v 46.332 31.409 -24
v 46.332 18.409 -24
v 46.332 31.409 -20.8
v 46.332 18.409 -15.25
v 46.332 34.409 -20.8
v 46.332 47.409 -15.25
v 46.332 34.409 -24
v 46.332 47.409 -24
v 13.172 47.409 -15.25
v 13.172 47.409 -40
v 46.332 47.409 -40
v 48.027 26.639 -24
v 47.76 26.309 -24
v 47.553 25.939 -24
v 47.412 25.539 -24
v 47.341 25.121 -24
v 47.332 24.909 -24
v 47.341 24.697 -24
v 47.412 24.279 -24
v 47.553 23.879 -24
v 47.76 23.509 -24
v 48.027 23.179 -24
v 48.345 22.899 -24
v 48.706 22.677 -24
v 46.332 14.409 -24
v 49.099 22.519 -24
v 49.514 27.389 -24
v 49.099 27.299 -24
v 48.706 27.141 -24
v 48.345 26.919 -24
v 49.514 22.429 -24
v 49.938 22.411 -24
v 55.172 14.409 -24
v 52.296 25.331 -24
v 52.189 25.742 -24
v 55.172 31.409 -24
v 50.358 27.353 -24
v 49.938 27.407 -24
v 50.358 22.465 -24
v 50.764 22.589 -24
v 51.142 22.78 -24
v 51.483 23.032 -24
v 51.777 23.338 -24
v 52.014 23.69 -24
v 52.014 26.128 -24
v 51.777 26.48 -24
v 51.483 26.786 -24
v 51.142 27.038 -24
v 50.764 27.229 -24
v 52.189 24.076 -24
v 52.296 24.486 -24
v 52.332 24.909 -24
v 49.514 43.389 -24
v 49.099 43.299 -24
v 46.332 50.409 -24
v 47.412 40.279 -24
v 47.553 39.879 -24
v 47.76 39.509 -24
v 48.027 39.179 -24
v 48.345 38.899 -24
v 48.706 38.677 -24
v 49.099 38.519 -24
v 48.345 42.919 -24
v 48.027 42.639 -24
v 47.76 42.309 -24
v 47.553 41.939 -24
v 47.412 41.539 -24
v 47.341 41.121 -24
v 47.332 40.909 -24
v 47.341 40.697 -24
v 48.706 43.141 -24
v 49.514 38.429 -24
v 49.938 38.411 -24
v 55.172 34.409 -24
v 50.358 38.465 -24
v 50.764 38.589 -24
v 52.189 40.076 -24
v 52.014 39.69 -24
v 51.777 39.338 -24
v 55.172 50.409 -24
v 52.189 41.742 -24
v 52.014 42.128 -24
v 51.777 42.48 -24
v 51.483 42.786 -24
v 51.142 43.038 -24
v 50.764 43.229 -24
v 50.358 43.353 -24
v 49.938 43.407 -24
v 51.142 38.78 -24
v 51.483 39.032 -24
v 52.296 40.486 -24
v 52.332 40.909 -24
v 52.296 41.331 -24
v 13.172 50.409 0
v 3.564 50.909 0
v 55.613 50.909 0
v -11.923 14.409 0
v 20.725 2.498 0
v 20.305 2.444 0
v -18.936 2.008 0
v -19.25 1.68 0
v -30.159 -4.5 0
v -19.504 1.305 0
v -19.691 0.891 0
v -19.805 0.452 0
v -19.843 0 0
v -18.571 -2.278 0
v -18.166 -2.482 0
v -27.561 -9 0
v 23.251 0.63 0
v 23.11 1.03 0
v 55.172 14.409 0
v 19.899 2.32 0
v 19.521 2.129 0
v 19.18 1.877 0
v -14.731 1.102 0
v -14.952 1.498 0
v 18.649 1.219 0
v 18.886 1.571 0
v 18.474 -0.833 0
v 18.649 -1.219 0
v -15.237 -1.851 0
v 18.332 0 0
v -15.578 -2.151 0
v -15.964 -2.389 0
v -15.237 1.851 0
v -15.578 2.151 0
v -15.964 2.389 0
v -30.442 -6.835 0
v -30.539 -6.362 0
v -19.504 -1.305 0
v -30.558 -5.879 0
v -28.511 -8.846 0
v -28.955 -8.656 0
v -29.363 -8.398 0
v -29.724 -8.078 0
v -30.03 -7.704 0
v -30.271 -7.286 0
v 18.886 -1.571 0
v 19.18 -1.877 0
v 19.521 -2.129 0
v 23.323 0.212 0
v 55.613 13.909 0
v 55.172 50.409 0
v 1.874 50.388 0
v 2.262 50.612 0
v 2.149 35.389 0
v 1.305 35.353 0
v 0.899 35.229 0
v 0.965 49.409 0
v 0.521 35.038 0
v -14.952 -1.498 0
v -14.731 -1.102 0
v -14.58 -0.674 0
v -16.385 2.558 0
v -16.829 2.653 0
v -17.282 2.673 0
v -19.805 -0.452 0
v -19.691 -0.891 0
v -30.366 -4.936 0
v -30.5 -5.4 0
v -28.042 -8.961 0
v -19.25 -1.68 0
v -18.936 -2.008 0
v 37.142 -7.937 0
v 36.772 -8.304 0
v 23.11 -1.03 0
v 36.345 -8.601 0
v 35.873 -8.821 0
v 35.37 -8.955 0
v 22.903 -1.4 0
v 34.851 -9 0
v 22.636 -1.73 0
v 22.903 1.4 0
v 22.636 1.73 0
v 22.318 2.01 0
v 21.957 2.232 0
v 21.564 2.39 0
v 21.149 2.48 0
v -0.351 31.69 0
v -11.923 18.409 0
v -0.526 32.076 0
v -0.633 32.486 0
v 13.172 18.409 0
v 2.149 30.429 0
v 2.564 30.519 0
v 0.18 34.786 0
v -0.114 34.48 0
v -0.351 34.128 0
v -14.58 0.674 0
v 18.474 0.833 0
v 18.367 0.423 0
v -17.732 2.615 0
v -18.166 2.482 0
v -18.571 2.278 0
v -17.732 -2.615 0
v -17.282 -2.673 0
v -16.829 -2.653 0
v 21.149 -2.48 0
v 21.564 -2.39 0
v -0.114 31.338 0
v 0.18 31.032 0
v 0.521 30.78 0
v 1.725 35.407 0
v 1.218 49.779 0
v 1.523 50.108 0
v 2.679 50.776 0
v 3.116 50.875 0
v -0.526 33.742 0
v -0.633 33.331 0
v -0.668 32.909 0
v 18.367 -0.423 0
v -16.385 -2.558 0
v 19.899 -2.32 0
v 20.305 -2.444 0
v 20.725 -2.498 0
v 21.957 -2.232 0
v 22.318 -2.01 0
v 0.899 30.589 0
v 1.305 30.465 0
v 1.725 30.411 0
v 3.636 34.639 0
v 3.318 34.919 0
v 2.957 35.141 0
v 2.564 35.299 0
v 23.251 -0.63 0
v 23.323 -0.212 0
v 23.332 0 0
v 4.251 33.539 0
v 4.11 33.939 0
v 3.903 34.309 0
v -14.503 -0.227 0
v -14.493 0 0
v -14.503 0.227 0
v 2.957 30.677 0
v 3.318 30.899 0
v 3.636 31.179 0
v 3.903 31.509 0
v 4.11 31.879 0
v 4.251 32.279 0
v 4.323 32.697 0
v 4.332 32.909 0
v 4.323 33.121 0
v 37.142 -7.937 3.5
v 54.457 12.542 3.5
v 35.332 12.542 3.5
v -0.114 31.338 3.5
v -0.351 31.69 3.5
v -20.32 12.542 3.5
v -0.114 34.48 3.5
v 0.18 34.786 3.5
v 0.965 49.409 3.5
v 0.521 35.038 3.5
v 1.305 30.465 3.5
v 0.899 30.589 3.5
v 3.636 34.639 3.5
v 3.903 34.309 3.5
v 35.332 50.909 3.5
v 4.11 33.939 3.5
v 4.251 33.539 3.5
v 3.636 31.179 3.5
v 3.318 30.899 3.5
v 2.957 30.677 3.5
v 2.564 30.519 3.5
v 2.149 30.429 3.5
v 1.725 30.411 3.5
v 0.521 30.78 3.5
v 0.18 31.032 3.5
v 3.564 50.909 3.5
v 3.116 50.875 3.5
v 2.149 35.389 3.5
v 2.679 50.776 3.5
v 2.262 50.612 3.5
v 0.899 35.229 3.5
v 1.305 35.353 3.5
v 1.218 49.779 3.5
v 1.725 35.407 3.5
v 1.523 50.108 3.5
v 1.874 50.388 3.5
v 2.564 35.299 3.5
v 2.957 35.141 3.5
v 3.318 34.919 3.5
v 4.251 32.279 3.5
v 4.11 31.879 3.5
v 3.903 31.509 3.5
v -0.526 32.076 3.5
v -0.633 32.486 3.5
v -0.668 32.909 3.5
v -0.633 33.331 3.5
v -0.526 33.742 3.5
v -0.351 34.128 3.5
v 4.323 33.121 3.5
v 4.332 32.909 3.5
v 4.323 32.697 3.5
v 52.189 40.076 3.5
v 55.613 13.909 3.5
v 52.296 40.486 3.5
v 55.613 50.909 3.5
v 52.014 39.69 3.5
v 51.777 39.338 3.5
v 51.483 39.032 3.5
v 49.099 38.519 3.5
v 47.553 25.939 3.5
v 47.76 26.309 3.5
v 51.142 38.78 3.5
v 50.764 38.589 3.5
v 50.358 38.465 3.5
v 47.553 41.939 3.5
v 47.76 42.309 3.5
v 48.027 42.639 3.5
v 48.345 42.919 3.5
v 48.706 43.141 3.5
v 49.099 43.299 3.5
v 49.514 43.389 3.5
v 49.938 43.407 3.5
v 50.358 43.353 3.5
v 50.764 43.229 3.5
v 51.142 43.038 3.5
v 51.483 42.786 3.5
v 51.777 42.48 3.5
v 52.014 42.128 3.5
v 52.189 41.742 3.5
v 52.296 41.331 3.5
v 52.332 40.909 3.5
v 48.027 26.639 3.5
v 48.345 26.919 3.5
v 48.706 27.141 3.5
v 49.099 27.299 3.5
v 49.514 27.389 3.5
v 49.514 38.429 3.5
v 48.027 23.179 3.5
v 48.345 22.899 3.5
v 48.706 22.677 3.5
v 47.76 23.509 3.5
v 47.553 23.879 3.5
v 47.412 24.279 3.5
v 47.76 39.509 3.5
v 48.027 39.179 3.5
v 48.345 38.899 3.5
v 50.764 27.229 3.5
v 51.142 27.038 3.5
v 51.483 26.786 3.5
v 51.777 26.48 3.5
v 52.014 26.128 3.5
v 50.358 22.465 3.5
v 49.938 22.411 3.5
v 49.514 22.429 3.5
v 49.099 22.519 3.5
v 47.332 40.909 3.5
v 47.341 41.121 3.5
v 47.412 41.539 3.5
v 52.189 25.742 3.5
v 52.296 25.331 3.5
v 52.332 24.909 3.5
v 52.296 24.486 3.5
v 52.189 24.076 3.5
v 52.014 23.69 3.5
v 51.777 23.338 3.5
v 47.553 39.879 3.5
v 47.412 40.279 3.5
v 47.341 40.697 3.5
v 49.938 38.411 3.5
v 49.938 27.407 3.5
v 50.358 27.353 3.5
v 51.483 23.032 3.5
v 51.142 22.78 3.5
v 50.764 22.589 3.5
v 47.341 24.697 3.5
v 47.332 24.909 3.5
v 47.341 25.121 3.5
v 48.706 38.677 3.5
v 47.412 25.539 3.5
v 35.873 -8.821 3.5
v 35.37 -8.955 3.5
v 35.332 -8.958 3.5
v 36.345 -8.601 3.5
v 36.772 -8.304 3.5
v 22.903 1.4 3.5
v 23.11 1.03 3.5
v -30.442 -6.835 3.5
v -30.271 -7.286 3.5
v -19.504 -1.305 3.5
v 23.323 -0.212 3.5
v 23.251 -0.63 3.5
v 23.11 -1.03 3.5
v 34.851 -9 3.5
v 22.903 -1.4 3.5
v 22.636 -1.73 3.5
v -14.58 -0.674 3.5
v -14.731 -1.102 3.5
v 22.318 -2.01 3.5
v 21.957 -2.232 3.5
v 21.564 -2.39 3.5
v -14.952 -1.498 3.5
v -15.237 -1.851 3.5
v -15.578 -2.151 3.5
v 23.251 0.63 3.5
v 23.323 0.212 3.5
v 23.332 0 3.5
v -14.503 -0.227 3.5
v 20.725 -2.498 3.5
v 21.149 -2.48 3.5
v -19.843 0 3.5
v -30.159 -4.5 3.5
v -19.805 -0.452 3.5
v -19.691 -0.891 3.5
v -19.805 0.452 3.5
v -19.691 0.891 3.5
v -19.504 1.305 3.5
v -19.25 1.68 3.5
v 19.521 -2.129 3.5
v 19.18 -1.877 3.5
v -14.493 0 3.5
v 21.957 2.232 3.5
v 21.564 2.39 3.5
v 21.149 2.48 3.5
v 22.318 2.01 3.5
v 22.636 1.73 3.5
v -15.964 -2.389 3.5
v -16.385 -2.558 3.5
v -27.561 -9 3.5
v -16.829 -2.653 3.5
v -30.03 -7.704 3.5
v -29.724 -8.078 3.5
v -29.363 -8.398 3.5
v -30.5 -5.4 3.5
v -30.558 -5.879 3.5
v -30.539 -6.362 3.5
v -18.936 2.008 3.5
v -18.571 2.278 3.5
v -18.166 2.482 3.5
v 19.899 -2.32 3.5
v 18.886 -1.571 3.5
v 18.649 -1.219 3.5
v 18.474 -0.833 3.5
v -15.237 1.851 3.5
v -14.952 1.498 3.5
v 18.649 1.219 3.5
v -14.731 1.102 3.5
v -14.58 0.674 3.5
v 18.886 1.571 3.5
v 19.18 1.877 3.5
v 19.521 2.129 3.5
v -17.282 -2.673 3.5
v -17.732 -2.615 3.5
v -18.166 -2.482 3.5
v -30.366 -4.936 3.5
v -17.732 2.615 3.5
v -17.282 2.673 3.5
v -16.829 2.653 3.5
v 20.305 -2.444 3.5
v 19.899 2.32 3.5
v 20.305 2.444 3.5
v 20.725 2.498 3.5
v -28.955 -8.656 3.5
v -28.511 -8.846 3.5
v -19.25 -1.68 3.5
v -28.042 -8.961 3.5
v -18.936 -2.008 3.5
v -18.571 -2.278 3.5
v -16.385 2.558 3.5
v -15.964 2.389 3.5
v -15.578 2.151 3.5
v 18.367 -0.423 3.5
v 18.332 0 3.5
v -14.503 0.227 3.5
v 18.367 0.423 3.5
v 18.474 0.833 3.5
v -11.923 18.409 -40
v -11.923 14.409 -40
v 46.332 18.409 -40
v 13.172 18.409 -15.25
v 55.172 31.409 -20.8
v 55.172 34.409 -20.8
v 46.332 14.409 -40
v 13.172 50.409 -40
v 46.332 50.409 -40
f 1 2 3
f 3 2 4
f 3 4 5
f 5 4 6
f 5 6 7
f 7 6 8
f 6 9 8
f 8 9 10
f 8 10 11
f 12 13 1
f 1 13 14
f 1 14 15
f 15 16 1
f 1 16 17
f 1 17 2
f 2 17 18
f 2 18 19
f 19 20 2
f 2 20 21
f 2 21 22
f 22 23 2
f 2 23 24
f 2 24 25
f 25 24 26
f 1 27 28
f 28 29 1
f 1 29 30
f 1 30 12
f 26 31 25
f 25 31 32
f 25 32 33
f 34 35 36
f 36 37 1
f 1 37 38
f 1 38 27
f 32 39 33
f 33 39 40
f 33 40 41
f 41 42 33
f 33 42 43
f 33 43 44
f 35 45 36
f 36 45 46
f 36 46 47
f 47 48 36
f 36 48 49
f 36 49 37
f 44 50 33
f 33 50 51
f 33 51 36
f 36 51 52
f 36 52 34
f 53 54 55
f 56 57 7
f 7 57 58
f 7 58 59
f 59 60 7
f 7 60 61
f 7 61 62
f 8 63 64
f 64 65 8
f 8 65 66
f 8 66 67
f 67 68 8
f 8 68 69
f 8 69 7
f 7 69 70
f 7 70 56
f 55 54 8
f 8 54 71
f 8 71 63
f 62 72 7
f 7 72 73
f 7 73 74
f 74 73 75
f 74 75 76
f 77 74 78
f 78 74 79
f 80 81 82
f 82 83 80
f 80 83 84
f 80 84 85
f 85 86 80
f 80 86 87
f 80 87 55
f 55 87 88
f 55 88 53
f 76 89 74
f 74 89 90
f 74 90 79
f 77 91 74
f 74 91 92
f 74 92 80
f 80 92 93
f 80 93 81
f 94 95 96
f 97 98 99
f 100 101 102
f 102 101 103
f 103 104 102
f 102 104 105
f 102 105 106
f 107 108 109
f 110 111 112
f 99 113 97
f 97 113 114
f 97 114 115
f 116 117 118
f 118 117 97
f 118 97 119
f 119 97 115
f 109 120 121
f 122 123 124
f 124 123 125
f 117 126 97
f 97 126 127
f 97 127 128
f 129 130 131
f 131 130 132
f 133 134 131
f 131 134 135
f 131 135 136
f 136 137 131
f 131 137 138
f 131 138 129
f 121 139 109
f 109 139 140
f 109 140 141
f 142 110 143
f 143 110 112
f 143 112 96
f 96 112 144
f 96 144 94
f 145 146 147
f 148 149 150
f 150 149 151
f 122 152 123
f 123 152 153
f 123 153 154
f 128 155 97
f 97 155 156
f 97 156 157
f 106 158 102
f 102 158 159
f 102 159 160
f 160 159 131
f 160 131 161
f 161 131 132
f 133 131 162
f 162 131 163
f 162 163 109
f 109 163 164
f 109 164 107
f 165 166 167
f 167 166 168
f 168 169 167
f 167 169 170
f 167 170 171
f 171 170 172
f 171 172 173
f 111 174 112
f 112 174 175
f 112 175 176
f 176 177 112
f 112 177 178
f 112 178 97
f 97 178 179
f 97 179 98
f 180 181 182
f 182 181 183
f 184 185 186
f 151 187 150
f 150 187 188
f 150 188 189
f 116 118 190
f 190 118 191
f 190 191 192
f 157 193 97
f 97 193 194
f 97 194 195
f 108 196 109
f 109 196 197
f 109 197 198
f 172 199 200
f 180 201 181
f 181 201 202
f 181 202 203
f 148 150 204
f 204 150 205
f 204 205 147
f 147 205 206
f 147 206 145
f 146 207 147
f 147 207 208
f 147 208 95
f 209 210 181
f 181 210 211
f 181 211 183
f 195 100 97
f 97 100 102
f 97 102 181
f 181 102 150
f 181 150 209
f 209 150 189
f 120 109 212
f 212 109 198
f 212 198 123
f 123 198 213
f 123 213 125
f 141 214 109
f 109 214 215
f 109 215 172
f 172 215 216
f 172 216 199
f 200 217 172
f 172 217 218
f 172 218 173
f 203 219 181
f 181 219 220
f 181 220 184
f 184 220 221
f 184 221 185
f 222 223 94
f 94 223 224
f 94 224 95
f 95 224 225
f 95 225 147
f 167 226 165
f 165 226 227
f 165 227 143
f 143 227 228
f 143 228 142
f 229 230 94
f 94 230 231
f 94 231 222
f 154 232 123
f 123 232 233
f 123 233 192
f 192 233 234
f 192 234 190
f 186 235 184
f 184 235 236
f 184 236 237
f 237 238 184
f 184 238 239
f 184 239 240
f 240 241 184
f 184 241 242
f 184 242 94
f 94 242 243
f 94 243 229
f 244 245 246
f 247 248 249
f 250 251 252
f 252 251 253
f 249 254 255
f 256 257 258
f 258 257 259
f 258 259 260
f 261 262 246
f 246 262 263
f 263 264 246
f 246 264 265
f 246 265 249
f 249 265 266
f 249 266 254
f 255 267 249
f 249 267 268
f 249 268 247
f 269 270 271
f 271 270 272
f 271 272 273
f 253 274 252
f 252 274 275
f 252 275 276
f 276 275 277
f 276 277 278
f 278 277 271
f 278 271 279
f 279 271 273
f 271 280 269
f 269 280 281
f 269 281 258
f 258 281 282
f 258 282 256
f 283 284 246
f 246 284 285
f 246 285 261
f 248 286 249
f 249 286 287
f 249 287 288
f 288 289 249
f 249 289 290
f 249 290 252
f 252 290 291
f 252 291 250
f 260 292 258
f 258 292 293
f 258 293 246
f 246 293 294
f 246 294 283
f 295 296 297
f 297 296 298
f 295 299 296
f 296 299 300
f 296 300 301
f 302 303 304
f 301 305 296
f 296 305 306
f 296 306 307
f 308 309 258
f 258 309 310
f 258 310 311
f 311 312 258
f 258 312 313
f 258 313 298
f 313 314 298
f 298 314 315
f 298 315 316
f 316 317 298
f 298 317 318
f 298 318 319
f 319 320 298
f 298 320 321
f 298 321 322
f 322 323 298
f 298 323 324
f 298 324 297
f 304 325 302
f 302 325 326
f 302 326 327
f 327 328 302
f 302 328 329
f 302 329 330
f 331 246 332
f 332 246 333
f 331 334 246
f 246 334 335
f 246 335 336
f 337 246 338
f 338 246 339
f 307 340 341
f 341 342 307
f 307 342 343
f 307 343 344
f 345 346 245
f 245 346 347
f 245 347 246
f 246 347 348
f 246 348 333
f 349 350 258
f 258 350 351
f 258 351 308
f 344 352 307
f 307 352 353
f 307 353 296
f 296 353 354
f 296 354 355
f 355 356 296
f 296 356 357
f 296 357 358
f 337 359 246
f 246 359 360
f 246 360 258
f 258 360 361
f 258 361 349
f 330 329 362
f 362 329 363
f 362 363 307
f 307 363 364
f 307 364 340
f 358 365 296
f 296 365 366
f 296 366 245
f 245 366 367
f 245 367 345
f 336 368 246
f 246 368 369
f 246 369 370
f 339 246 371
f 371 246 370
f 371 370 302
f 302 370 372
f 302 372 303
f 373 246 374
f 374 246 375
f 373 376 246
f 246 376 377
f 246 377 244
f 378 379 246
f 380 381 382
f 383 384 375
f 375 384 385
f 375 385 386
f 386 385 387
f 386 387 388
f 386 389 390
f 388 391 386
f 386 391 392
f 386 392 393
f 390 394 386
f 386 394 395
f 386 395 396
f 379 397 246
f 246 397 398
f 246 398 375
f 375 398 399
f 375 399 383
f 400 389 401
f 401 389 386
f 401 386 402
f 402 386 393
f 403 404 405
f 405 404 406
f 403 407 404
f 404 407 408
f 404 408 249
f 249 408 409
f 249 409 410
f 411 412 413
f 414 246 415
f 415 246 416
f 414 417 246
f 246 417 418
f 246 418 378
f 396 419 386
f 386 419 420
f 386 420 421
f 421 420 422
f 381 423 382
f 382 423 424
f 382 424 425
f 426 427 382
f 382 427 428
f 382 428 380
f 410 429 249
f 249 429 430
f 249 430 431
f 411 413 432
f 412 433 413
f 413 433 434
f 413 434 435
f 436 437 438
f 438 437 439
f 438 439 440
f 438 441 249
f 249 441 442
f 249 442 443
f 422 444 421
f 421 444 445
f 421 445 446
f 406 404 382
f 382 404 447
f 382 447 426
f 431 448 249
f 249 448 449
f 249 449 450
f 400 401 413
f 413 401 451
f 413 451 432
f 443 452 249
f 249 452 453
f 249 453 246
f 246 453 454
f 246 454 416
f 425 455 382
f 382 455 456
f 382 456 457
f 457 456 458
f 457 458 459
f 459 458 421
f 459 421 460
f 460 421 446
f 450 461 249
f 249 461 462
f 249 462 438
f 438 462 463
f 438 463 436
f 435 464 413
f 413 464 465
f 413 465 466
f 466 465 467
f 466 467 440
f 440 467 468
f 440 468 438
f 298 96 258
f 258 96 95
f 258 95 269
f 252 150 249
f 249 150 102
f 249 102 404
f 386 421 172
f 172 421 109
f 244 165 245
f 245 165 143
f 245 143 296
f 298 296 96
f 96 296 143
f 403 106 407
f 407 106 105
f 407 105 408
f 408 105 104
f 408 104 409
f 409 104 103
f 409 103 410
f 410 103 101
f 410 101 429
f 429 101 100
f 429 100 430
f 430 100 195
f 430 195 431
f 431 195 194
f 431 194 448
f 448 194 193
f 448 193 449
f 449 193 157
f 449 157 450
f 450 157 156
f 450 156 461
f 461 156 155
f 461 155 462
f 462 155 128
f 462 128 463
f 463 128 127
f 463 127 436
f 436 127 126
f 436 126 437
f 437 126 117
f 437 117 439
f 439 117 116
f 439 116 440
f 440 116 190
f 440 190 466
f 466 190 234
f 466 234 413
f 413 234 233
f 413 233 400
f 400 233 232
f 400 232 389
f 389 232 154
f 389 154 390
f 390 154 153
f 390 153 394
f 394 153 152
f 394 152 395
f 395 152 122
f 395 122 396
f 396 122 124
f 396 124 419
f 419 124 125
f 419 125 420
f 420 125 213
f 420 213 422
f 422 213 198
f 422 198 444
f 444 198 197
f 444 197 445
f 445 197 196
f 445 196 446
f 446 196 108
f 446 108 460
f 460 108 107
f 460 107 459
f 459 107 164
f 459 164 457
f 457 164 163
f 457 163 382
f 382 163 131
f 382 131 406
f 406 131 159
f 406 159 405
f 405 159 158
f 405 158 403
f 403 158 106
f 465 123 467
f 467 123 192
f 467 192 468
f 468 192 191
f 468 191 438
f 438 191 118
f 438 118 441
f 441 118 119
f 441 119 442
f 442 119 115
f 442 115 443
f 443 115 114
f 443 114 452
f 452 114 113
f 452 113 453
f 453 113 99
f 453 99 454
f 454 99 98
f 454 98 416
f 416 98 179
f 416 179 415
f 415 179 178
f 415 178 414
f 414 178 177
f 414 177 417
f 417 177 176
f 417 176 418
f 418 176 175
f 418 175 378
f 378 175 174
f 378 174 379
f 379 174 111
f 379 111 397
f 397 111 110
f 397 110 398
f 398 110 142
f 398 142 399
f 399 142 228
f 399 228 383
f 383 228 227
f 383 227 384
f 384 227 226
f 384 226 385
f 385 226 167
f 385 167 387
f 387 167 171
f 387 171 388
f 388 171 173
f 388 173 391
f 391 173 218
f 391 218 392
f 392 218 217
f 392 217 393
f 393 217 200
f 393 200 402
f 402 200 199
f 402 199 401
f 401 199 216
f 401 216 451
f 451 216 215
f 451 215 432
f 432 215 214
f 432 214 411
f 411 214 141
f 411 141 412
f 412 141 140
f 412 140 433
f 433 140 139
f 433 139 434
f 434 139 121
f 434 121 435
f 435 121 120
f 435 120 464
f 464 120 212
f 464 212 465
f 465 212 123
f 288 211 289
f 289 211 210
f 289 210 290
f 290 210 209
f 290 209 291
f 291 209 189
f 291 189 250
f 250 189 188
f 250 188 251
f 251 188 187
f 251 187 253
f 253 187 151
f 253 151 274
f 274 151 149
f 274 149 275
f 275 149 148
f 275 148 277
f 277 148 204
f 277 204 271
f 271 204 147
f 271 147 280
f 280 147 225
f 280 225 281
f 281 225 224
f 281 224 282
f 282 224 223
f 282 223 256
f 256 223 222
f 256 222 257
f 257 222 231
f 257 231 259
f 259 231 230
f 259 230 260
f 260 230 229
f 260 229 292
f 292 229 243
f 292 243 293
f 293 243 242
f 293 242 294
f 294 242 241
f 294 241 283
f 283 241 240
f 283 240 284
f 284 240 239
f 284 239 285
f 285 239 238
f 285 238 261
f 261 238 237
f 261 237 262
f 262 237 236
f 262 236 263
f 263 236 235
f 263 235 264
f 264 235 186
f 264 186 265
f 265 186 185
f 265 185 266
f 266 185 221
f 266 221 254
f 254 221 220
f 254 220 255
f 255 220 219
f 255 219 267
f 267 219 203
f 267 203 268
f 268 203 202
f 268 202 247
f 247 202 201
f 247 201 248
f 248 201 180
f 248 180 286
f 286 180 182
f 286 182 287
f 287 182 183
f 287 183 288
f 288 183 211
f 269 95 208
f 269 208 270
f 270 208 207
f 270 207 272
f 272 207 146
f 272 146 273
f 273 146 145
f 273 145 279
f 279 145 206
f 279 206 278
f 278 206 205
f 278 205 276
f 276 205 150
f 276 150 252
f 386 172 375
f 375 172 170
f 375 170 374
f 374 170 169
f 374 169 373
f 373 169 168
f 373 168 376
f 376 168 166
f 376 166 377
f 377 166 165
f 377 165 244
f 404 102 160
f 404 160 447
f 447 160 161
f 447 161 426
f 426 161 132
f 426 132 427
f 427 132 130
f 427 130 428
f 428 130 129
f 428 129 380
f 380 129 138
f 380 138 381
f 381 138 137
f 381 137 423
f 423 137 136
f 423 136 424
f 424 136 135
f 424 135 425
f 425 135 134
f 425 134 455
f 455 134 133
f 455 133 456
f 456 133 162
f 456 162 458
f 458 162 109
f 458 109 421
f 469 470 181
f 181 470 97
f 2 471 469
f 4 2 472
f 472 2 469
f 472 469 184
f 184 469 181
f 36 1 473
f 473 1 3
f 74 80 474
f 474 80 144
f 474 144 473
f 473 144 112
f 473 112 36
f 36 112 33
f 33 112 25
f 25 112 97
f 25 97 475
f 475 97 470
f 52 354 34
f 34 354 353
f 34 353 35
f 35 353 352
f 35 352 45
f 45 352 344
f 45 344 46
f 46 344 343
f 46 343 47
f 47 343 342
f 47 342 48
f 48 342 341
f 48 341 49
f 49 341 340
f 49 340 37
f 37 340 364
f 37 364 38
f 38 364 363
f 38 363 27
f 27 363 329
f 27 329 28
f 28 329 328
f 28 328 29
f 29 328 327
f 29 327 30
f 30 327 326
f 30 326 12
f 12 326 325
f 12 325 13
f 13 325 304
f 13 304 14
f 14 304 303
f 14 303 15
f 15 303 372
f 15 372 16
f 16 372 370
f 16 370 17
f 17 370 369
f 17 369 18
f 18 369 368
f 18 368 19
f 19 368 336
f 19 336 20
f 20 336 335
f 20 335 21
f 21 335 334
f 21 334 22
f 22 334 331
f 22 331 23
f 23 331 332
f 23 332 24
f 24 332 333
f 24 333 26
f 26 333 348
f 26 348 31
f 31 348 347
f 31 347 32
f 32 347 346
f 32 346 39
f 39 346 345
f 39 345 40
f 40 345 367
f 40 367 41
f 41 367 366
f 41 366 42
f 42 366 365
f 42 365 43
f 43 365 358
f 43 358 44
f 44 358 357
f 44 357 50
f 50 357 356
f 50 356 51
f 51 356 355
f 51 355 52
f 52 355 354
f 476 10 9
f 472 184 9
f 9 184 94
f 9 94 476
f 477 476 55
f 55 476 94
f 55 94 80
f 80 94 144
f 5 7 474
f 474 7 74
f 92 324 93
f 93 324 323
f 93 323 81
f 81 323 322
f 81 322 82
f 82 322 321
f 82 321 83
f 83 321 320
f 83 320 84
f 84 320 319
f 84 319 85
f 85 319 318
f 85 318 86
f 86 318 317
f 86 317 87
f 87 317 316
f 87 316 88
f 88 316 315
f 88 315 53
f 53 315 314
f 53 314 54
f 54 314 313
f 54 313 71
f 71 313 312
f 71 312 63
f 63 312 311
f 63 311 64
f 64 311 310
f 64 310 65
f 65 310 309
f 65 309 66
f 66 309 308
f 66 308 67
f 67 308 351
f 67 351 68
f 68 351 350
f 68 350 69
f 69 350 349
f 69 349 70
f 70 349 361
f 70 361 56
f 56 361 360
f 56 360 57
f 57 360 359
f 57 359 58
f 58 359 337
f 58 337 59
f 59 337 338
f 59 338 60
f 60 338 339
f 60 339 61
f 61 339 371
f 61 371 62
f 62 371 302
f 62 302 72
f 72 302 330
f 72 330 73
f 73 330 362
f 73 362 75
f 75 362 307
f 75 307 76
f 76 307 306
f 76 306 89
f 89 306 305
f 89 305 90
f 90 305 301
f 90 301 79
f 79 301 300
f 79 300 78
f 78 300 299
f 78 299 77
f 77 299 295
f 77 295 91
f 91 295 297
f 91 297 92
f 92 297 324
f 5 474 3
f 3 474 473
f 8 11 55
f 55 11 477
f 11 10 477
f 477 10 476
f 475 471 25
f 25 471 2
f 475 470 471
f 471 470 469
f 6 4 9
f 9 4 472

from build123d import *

# Parameters (mm, degrees)
SKETCH1_R           = 2.675
SKETCH1_R_2         = 2.5
BOSS_EXTRUDE1_DEPTH = 3.5
FILLET1_R           = 3
SKETCH2_W           = 8.840351234
SKETCH2_H           = 3
SKETCH2_H_2         = 13
SKETCH2_R           = 2.5
SKETCH2_W_2         = 33.159648766
SKETCH2_R_2         = 4.125
SKETCH2_W_3         = 8.159648766
SKETCH2_H_3         = 4
BOSS_EXTRUDE2_DEPTH = 3.5
SKETCH2_4_W         = 8.840351234
SKETCH2_4_H         = 4
SKETCH2_4_H_2       = 13
SKETCH2_4_R         = 2.5
SKETCH2_4_H_3       = 3
SKETCH2_4_W_2       = 33.159648766
BOSS_EXTRUDE3_DEPTH = 24
FILLET2_R           = 3
SKETCH2_7_W         = 8.840351234
SKETCH2_7_H         = 3
BOSS_EXTRUDE5_DEPTH = 20.8
SKETCH2_9_R         = 2.5
CUT_EXTRUDE3_DEPTH  = 80.12322562
CUT_EXTRUDE1_DEPTH  = 80.12322562
SKETCH2_10_W        = 33.159648766
SKETCH2_10_H        = 3
SKETCH2_10_W_2      = 58.254565561
SKETCH2_10_H_2      = 4
BOSS_EXTRUDE6_DEPTH = 40
BOSS_EXTRUDE7_DEPTH = 15.25


with BuildPart() as part:
    # Sketch1 → Boss-Extrude1 (new body)
    with BuildSketch(Plane.XY):
        Polygon((-32.756938656, -9), (36.243061344, -9), (55.612607206, 13.908965344), (55.612607206, 50.908965344), (1.831518612, 50.908965344), align=None)
        with Locations((-17.168481388, 0)):
            Circle(SKETCH1_R, mode=Mode.SUBTRACT)
        with Locations((20.831518612, 0)):
            Circle(SKETCH1_R_2, mode=Mode.SUBTRACT)
        with Locations((1.831518612, 32.908965344)):
            Circle(SKETCH1_R_2, mode=Mode.SUBTRACT)
    extrude(amount=BOSS_EXTRUDE1_DEPTH)

    # Fillet1
    fillet1_edges = [part.edges().sort_by_distance(p)[0] for p in [
        (36.243061344, -9, 1.75),
        (-32.756938656, -9, 1.75),
        (1.831518612, 50.908965344, 1.75),
    ]]
    fillet(fillet1_edges, radius=FILLET1_R)

    # Sketch2 → Boss-Extrude2 (add)
    # profile 1 of 12: a face of its own
    with BuildSketch(Plane(origin=(0, 0, 0), x_dir=(-1, 0, 0), z_dir=(0, 0, -1))):
        with Locations((-50.751694229, 48.908965344)):
            Rectangle(SKETCH2_W, SKETCH2_H)
    # profile 2 of 12: a face of its own
    with BuildSketch(Plane(origin=(0, 0, 0), x_dir=(-1, 0, 0), z_dir=(0, 0, -1))):
        with Locations((-50.751694229, 40.908965344)):
            Rectangle(SKETCH2_W, SKETCH2_H_2)
        with Locations((-49.831518612, 40.908965344)):
            Circle(SKETCH2_R, mode=Mode.SUBTRACT)
    # profile 3 of 12: a face of its own
    with BuildSketch(Plane(origin=(0, 0, 0), x_dir=(-1, 0, 0), z_dir=(0, 0, -1))):
        with Locations((-29.751694229, 48.908965344)):
            Rectangle(SKETCH2_W_2, SKETCH2_H)
    # profile 4 of 12: a face of its own
    with BuildSketch(Plane(origin=(0, 0, 0), x_dir=(-1, 0, 0), z_dir=(0, 0, -1))):
        Polygon((-13.171869846, 47.408965344), (-46.331518612, 47.408965344), (-46.331518612, 34.408965344), (-46.331518612, 31.408965344), (-46.331518612, 18.408965344), (-13.171869846, 18.408965344), align=None)
    # profile 5 of 12: a face of its own
    with BuildSketch(Plane(origin=(0, 0, 0), x_dir=(-1, 0, 0), z_dir=(0, 0, -1))):
        with Locations((-50.751694229, 32.908965344)):
            Rectangle(SKETCH2_W, SKETCH2_H)
    # profile 6 of 12: a face of its own
    with BuildSketch(Plane(origin=(0, 0, 0), x_dir=(-1, 0, 0), z_dir=(0, 0, -1))):
        Polygon((12.168481388, 47.408965344), (-13.171869846, 47.408965344), (-13.171869846, 18.408965344), (11.923046949, 18.408965344), (12.168481388, 18.408965344), (12.168481388, 31.408965344), (12.168481388, 34.408965344), align=None)
        with Locations((-1.831518612, 32.908965344)):
            Circle(SKETCH2_R_2, mode=Mode.SUBTRACT)
    # profile 7 of 12: a face of its own
    with BuildSketch(Plane(origin=(0, 0, 0), x_dir=(-1, 0, 0), z_dir=(0, 0, -1))):
        with Locations((-50.751694229, 24.908965344)):
            Rectangle(SKETCH2_W, SKETCH2_H_2)
        with Locations((-49.831518612, 24.908965344)):
            Circle(SKETCH2_R, mode=Mode.SUBTRACT)
    # profile 8 of 12: a face of its own
    with BuildSketch(Plane(origin=(0, 0, 0), x_dir=(-1, 0, 0), z_dir=(0, 0, -1))):
        with Locations((16.248305771, 40.908965344)):
            Rectangle(SKETCH2_W_3, SKETCH2_H_2)
        with Locations((16.168481388, 40.908965344)):
            Circle(SKETCH2_R, mode=Mode.SUBTRACT)
    # profile 9 of 12: a face of its own
    with BuildSketch(Plane(origin=(0, 0, 0), x_dir=(-1, 0, 0), z_dir=(0, 0, -1))):
        Polygon((11.923046949, 18.408965344), (-13.171869846, 18.408965344), (-46.331518612, 18.408965344), (-46.331518612, 14.408965344), (11.923046949, 14.408965344), align=None)
    # profile 10 of 12: a face of its own
    with BuildSketch(Plane(origin=(0, 0, 0), x_dir=(-1, 0, 0), z_dir=(0, 0, -1))):
        with Locations((-50.751694229, 16.408965344)):
            Rectangle(SKETCH2_W, SKETCH2_H_3)
    # profile 11 of 12: a face of its own
    with BuildSketch(Plane(origin=(0, 0, 0), x_dir=(-1, 0, 0), z_dir=(0, 0, -1))):
        with Locations((16.248305771, 32.908965344)):
            Rectangle(SKETCH2_W_3, SKETCH2_H)
    # profile 12 of 12: a face of its own
    with BuildSketch(Plane(origin=(0, 0, 0), x_dir=(-1, 0, 0), z_dir=(0, 0, -1))):
        Polygon((20.328130154, 31.408965344), (12.168481388, 31.408965344), (12.168481388, 18.408965344), (16.168481388, 18.408965344), (20.328130154, 18.408965344), align=None)
        with Locations((16.168481388, 24.908965344)):
            Circle(SKETCH2_R, mode=Mode.SUBTRACT)
    extrude(amount=-BOSS_EXTRUDE2_DEPTH)

    # Sketch2<4> → Boss-Extrude3 (add)
    # profile 1 of 6: a face of its own
    with BuildSketch(Plane(origin=(0, 0, 0), x_dir=(-1, 0, 0), z_dir=(0, 0, -1))):
        Polygon((11.923046949, 18.408965344), (-13.171869846, 18.408965344), (-46.331518612, 18.408965344), (-46.331518612, 14.408965344), (11.923046949, 14.408965344), align=None)
    # profile 2 of 6: a face of its own
    with BuildSketch(Plane(origin=(0, 0, 0), x_dir=(-1, 0, 0), z_dir=(0, 0, -1))):
        with Locations((-50.751694229, 16.408965344)):
            Rectangle(SKETCH2_4_W, SKETCH2_4_H)
    # profile 3 of 6: a face of its own
    with BuildSketch(Plane(origin=(0, 0, 0), x_dir=(-1, 0, 0), z_dir=(0, 0, -1))):
        with Locations((-50.751694229, 24.908965344)):
            Rectangle(SKETCH2_4_W, SKETCH2_4_H_2)
        with Locations((-49.831518612, 24.908965344)):
            Circle(SKETCH2_4_R, mode=Mode.SUBTRACT)
    # profile 4 of 6: a face of its own
    with BuildSketch(Plane(origin=(0, 0, 0), x_dir=(-1, 0, 0), z_dir=(0, 0, -1))):
        with Locations((-50.751694229, 40.908965344)):
            Rectangle(SKETCH2_4_W, SKETCH2_4_H_2)
        with Locations((-49.831518612, 40.908965344)):
            Circle(SKETCH2_4_R, mode=Mode.SUBTRACT)
    # profile 5 of 6: a face of its own
    with BuildSketch(Plane(origin=(0, 0, 0), x_dir=(-1, 0, 0), z_dir=(0, 0, -1))):
        with Locations((-50.751694229, 48.908965344)):
            Rectangle(SKETCH2_4_W, SKETCH2_4_H_3)
    # profile 6 of 6: a face of its own
    with BuildSketch(Plane(origin=(0, 0, 0), x_dir=(-1, 0, 0), z_dir=(0, 0, -1))):
        with Locations((-29.751694229, 48.908965344)):
            Rectangle(SKETCH2_4_W_2, SKETCH2_4_H_3)
    extrude(amount=BOSS_EXTRUDE3_DEPTH)

    # Fillet2
    # the kernel refuses this fillet: 3 mm, written as the material it adds along each edge
    with BuildSketch(Plane(origin=(-16.932365136, 18.408965344, 3.5), x_dir=(-0.49999999999999933, -0.8660254037844389, 0), z_dir=(0, 0, -1))) as fillet2_piece_1:
        with BuildLine():
            CenterArc((4.697298716, 3), FILLET2_R, 181.130351539, 88.869648461)
            Line((1.697882509, 2.940818771), (1.637894185, 2.939635146))
            ThreePointArc((1.637894185, 2.939635146), (0.79697973, 1.500409385), (-0.051961524, 0.03))
            Line((-0.051961524, 0.03), (0, -0.06))
            Line((0, -0.06), (4.697298716, -0.06))
            Line((4.697298716, -0.06), (4.697298716, 0))
        make_face()
    extrude(amount=3.5)

    # Sketch2<7> → Boss-Extrude5 (add)
    with BuildSketch(Plane(origin=(0, 0, 0), x_dir=(-1, 0, 0), z_dir=(0, 0, -1))):
        with Locations((-50.751694229, 32.908965344)):
            Rectangle(SKETCH2_7_W, SKETCH2_7_H)
    extrude(amount=BOSS_EXTRUDE5_DEPTH)

    # Sketch2<9> → Cut-Extrude3 (cut, through all)
    with BuildSketch(Plane(origin=(0, 0, 0), x_dir=(-1, 0, 0), z_dir=(0, 0, -1))):
        with Locations((-49.831518612, 40.908965344)):
            Circle(SKETCH2_9_R)
        with Locations((-49.831518612, 24.908965344)):
            Circle(SKETCH2_9_R)
    extrude(amount=-CUT_EXTRUDE3_DEPTH, mode=Mode.SUBTRACT)

    # Sketch3 → Cut-Extrude1 (cut, through all)
    with BuildSketch(Plane(origin=(0, 0, 0), x_dir=(-1, 0, 0), z_dir=(0, 0, -1))):
        Polygon((-1.831518612, 50.908965344), (32.756938656, -9), (32.756938656, 50.908965344), align=None)
    extrude(amount=-CUT_EXTRUDE1_DEPTH, mode=Mode.SUBTRACT)

    # Sketch2<10> → Boss-Extrude6 (add)
    with BuildSketch(Plane(origin=(0, 0, 0), x_dir=(-1, 0, 0), z_dir=(0, 0, -1))):
        with Locations((-29.751694229, 48.908965344)):
            Rectangle(SKETCH2_10_W, SKETCH2_10_H)
        with Locations((-17.204235832, 16.408965344)):
            Rectangle(SKETCH2_10_W_2, SKETCH2_10_H_2)
    extrude(amount=BOSS_EXTRUDE6_DEPTH)

    # Sketch2<11> → Boss-Extrude7 (add)
    with BuildSketch(Plane(origin=(0, 0, 0), x_dir=(-1, 0, 0), z_dir=(0, 0, -1))):
        Polygon((-13.171869846, 47.408965344), (-46.331518612, 47.408965344), (-46.331518612, 34.408965344), (-46.331518612, 31.408965344), (-46.331518612, 18.408965344), (-13.171869846, 18.408965344), align=None)
    extrude(amount=BOSS_EXTRUDE7_DEPTH)


solid = part.part
